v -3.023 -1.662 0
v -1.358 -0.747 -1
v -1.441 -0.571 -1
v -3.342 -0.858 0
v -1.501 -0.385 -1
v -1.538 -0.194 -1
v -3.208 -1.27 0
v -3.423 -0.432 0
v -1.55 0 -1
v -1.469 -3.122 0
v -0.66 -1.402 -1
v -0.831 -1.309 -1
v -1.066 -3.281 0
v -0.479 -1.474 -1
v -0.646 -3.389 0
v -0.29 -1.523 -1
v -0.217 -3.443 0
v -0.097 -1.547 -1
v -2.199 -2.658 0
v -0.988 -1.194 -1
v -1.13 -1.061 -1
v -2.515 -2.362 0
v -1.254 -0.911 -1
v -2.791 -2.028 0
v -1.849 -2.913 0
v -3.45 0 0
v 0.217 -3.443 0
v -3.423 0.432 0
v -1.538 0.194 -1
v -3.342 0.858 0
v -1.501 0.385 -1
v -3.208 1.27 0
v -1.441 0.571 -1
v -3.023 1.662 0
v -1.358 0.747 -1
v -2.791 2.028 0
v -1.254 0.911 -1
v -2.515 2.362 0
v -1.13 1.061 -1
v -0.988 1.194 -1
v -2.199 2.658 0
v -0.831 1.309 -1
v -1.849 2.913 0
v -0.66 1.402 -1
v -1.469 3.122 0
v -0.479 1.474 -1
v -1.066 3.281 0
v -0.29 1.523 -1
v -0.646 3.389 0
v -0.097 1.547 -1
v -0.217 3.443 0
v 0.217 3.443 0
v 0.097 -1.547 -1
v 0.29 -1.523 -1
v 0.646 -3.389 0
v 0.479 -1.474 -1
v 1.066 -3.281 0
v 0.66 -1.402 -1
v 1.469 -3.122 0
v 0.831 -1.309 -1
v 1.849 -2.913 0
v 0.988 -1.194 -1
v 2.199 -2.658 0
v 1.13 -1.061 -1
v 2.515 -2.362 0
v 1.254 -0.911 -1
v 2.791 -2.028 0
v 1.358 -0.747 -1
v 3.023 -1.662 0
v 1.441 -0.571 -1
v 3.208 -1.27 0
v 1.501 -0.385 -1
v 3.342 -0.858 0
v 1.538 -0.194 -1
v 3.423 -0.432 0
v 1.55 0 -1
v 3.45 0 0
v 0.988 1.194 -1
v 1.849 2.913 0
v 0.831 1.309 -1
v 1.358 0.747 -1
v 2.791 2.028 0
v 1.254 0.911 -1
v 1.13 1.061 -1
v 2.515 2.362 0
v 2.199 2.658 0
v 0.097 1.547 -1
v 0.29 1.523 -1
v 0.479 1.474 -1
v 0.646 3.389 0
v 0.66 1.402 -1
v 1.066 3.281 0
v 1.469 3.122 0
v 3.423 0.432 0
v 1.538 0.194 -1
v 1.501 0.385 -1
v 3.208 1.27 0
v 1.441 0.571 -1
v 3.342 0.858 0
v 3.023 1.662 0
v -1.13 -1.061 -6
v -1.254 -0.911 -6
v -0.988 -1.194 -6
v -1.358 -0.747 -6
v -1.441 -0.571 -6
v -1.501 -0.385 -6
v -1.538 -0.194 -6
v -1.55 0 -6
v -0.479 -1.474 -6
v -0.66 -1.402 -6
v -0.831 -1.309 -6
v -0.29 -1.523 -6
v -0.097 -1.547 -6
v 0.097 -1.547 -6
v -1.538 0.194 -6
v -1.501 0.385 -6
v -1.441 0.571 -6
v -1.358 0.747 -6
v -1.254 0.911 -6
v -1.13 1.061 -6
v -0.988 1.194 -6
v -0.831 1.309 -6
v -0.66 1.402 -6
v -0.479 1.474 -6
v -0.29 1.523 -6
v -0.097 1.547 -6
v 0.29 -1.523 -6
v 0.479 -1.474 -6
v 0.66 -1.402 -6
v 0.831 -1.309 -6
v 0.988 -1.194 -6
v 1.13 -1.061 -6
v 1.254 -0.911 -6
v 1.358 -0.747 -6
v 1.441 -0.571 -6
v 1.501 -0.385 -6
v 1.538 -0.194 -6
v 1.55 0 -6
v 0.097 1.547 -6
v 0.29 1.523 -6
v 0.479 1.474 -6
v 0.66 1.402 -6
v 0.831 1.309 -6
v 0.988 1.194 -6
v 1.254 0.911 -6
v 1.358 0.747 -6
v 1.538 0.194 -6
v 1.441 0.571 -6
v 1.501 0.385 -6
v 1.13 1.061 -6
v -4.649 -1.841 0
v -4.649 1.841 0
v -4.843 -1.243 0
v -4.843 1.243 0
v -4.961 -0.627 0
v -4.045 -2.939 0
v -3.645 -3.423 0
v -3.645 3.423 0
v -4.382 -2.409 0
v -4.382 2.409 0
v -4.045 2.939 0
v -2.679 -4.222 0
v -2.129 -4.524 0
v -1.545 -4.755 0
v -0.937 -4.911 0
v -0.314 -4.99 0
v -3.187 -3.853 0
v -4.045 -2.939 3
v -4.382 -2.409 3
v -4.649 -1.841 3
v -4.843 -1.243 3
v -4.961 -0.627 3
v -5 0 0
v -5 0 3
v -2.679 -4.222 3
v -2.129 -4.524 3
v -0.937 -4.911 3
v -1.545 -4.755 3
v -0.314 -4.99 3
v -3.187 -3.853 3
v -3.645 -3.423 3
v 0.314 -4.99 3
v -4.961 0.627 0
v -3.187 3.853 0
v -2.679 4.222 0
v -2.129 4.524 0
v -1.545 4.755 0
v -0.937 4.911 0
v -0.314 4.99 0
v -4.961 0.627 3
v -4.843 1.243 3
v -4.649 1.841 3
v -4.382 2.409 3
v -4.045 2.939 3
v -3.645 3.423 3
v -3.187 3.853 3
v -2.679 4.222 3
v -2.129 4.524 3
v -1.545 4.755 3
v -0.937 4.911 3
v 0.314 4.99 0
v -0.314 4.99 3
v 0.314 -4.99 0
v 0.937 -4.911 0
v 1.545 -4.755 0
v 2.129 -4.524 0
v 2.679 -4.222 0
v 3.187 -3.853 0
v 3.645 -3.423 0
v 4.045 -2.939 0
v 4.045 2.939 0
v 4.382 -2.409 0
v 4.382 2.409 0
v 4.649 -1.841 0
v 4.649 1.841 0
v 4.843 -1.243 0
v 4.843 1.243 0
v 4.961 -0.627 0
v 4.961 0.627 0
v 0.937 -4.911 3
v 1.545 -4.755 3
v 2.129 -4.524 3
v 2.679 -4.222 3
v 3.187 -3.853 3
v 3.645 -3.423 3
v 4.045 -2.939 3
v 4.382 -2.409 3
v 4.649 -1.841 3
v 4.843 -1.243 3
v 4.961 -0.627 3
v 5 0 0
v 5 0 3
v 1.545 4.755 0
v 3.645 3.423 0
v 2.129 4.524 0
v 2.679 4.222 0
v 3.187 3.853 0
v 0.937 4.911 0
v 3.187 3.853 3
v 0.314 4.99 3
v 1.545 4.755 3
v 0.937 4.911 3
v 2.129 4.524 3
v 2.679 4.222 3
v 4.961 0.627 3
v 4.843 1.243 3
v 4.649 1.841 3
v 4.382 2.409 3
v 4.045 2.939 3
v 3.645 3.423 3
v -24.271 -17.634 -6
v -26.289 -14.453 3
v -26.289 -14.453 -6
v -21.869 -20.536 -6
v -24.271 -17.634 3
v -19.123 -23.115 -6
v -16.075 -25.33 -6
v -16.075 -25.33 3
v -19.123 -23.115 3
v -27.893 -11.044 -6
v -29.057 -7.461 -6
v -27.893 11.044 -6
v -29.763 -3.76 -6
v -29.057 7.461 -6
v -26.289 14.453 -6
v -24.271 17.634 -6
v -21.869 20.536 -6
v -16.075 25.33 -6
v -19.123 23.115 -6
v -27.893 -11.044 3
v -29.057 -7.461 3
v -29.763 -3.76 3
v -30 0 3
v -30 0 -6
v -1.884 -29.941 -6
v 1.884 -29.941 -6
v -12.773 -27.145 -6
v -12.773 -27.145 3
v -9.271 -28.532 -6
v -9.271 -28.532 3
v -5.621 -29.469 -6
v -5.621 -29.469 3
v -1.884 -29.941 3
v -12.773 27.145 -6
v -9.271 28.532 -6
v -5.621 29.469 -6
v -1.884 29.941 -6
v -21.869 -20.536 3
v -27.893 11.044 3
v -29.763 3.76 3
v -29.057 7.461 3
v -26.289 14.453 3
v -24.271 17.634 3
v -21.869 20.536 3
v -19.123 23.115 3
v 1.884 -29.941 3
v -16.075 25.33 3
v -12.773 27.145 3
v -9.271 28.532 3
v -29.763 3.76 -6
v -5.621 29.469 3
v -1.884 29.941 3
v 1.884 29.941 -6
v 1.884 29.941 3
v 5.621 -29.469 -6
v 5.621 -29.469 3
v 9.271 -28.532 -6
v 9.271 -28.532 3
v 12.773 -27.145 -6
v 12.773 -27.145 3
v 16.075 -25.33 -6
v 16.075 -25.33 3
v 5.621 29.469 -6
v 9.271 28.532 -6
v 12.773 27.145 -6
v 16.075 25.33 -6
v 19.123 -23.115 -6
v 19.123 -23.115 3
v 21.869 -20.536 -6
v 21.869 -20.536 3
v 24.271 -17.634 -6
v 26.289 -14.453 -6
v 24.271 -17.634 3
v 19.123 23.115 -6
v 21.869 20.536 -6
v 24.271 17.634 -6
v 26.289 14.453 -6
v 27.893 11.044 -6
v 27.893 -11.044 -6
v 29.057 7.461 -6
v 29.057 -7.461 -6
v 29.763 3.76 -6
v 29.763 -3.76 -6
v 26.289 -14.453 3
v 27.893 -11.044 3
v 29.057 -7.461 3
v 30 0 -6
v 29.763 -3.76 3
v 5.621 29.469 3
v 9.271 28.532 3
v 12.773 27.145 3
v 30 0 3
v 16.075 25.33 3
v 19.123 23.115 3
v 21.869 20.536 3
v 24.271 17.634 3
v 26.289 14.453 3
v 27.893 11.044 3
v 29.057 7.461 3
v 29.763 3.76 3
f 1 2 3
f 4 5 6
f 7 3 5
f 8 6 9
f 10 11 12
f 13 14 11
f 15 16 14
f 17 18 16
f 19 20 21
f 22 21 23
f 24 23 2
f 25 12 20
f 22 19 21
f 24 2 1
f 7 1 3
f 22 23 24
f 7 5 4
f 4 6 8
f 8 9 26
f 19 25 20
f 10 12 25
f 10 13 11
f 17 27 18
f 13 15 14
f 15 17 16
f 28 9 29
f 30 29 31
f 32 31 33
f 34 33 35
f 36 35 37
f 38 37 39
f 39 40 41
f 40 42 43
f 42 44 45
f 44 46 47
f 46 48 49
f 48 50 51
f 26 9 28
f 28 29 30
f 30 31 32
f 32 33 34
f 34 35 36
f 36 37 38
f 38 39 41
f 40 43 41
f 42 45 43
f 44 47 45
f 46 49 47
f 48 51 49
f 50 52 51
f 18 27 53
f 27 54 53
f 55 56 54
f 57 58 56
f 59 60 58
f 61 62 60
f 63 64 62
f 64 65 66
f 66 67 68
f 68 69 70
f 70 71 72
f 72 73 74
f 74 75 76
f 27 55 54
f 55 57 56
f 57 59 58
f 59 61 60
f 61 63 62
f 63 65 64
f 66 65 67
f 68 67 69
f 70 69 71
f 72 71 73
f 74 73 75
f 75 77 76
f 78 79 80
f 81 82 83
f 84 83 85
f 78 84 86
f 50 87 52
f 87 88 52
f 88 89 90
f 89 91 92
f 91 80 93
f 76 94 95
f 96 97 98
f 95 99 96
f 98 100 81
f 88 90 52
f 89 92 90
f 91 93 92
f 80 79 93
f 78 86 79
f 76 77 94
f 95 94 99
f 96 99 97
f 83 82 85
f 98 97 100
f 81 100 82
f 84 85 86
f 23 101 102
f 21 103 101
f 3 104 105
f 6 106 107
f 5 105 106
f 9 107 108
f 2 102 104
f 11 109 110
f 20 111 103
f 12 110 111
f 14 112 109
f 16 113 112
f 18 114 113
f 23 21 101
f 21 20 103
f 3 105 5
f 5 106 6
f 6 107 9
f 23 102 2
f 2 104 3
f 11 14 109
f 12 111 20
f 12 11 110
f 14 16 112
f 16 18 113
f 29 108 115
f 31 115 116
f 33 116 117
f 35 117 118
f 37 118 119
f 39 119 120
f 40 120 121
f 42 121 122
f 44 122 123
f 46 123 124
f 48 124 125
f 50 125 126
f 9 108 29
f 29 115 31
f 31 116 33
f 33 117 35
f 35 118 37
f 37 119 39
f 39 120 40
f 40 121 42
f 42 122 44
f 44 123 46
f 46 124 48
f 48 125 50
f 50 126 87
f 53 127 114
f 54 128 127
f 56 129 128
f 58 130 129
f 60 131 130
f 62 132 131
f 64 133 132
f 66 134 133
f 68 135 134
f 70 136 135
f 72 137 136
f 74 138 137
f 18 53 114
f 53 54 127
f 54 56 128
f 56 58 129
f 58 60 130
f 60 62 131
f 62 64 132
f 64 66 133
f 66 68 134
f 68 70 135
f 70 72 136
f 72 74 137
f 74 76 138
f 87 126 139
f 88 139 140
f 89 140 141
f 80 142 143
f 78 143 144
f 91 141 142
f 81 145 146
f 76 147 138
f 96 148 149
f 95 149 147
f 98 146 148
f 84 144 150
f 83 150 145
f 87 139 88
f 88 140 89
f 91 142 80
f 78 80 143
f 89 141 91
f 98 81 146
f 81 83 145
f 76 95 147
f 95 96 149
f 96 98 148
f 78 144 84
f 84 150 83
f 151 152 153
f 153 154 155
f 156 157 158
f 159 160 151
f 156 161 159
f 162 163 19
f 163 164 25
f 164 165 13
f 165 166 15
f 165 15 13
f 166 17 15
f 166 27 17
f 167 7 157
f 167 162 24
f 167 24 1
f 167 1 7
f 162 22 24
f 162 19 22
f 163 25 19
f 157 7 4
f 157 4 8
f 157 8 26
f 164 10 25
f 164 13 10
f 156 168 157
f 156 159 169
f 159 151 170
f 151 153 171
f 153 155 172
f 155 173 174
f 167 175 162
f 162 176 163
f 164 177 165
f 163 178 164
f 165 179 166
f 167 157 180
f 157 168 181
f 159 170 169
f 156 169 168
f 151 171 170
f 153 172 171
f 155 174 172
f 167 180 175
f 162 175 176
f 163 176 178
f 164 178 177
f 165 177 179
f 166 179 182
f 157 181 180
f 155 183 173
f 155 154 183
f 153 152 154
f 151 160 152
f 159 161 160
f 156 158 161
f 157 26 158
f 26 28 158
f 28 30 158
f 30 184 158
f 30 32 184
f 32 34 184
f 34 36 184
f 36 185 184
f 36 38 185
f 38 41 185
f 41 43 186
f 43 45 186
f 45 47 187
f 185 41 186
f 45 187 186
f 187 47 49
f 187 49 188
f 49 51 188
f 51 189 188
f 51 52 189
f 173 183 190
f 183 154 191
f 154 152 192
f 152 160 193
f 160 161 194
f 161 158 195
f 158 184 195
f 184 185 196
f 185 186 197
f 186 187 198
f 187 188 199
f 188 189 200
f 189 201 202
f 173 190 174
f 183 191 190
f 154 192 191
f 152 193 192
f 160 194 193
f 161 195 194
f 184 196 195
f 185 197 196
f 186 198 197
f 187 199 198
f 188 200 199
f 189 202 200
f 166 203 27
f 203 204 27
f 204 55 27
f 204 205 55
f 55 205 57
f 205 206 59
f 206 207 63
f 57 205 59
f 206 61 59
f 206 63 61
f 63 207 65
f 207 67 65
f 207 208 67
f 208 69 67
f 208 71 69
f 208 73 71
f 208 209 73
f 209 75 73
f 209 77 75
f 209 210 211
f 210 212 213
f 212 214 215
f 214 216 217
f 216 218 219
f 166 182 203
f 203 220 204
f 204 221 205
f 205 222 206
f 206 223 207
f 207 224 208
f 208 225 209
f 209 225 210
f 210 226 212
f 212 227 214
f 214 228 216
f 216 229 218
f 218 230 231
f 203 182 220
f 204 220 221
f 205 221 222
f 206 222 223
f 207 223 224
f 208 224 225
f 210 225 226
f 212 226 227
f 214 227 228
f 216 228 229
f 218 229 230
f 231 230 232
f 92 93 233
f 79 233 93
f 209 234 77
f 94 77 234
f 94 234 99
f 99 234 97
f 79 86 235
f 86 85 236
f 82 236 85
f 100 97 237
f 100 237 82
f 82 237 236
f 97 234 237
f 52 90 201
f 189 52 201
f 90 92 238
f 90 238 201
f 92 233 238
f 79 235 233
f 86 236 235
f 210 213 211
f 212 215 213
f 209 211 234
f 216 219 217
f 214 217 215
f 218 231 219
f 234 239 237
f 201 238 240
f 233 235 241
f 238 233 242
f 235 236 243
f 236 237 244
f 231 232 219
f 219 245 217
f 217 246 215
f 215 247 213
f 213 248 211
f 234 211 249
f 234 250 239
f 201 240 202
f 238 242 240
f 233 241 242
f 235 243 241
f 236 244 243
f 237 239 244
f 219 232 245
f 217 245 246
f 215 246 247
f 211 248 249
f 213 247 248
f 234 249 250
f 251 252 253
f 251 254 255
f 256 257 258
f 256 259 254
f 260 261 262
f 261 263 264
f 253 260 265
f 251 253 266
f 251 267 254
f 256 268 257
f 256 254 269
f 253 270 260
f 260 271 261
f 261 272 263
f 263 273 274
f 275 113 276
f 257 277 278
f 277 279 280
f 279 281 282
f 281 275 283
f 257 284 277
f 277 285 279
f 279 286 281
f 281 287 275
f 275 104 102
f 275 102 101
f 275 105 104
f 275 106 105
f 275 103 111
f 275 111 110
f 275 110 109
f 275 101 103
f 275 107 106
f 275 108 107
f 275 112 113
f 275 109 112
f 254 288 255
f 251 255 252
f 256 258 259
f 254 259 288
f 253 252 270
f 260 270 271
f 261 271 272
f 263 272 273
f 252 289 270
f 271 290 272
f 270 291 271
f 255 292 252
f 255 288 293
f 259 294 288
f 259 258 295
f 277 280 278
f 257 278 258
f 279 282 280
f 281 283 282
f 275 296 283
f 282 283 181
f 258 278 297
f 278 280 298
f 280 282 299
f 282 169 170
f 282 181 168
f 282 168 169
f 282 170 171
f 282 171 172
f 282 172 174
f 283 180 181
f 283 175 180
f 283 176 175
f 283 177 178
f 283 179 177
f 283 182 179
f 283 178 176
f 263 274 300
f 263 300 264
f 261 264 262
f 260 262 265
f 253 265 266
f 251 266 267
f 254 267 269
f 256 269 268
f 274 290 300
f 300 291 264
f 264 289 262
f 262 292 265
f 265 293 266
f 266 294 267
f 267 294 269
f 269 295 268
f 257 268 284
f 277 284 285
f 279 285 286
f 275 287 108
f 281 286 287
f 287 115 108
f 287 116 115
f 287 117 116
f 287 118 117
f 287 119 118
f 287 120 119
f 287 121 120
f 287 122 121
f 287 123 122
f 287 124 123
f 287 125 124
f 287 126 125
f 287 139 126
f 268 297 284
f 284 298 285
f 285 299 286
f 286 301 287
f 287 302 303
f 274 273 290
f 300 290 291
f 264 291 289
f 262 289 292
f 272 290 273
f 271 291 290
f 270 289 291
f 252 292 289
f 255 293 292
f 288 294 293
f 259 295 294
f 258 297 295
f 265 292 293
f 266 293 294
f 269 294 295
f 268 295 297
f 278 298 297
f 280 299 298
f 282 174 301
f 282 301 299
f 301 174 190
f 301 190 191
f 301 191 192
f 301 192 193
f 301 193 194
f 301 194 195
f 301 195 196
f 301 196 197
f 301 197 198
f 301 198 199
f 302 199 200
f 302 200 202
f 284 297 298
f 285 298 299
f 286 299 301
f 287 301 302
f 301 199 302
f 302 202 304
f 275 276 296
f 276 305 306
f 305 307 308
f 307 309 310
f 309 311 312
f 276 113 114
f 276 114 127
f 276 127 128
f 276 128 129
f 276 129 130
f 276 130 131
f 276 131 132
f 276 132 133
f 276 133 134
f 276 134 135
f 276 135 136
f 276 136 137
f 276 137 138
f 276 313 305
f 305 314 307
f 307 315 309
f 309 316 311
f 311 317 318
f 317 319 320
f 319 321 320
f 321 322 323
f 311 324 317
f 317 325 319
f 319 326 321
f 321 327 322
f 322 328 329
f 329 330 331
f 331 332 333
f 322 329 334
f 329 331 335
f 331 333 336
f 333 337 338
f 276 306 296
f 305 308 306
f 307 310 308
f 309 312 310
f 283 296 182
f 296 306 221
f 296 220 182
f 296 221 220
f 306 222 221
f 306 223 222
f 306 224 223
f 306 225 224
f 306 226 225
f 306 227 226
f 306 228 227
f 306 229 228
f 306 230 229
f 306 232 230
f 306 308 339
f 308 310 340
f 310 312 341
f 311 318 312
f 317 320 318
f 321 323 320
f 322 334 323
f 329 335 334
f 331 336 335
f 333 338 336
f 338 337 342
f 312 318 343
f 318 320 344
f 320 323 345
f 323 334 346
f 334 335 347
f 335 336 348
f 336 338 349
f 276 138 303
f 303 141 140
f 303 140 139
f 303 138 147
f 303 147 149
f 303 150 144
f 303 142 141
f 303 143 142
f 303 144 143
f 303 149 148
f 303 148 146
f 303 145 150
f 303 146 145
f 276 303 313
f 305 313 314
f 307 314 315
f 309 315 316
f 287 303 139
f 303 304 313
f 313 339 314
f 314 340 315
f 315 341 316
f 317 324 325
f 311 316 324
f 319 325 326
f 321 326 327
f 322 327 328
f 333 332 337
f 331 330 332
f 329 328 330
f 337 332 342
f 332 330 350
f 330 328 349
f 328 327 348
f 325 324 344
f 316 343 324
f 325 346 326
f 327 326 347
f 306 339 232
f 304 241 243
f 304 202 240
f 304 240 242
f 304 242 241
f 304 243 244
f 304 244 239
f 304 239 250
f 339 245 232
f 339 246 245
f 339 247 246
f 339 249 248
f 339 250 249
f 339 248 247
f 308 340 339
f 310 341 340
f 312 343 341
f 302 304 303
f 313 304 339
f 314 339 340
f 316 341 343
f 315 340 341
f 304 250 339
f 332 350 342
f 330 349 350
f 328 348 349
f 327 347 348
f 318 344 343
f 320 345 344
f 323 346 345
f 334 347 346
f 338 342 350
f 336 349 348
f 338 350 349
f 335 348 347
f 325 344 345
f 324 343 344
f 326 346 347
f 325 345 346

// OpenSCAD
$fn = 50;

difference() {
	union() {
		translate(v = [0, 0, -6.0]) {
			cylinder(h = 9, r = 30.0);
		}
	}
	union() {
		translate(v = [0, 0, 0]) {
			rotate(a = [0, 0, 0]) {
				difference() {
					union() {
						translate(v = [0, 0, -9.0]) {
							cylinder(h = 9, r = 1.25);
						}
						translate(v = [0, 0, -1.0]) {
							cylinder(h = 1.0, r1 = 1.55, r2 = 3.45);
						}
						translate(v = [0, 0, -9.0]) {
							cylinder(h = 9, r = 1.55);
						}
						translate(v = [0, 0, -9.0]) {
							cylinder(h = 9, r = 1.25);
						}
					}
					union();
				}
			}
		}
		#cylinder(h = 3, r = 5.0);
	}
}
